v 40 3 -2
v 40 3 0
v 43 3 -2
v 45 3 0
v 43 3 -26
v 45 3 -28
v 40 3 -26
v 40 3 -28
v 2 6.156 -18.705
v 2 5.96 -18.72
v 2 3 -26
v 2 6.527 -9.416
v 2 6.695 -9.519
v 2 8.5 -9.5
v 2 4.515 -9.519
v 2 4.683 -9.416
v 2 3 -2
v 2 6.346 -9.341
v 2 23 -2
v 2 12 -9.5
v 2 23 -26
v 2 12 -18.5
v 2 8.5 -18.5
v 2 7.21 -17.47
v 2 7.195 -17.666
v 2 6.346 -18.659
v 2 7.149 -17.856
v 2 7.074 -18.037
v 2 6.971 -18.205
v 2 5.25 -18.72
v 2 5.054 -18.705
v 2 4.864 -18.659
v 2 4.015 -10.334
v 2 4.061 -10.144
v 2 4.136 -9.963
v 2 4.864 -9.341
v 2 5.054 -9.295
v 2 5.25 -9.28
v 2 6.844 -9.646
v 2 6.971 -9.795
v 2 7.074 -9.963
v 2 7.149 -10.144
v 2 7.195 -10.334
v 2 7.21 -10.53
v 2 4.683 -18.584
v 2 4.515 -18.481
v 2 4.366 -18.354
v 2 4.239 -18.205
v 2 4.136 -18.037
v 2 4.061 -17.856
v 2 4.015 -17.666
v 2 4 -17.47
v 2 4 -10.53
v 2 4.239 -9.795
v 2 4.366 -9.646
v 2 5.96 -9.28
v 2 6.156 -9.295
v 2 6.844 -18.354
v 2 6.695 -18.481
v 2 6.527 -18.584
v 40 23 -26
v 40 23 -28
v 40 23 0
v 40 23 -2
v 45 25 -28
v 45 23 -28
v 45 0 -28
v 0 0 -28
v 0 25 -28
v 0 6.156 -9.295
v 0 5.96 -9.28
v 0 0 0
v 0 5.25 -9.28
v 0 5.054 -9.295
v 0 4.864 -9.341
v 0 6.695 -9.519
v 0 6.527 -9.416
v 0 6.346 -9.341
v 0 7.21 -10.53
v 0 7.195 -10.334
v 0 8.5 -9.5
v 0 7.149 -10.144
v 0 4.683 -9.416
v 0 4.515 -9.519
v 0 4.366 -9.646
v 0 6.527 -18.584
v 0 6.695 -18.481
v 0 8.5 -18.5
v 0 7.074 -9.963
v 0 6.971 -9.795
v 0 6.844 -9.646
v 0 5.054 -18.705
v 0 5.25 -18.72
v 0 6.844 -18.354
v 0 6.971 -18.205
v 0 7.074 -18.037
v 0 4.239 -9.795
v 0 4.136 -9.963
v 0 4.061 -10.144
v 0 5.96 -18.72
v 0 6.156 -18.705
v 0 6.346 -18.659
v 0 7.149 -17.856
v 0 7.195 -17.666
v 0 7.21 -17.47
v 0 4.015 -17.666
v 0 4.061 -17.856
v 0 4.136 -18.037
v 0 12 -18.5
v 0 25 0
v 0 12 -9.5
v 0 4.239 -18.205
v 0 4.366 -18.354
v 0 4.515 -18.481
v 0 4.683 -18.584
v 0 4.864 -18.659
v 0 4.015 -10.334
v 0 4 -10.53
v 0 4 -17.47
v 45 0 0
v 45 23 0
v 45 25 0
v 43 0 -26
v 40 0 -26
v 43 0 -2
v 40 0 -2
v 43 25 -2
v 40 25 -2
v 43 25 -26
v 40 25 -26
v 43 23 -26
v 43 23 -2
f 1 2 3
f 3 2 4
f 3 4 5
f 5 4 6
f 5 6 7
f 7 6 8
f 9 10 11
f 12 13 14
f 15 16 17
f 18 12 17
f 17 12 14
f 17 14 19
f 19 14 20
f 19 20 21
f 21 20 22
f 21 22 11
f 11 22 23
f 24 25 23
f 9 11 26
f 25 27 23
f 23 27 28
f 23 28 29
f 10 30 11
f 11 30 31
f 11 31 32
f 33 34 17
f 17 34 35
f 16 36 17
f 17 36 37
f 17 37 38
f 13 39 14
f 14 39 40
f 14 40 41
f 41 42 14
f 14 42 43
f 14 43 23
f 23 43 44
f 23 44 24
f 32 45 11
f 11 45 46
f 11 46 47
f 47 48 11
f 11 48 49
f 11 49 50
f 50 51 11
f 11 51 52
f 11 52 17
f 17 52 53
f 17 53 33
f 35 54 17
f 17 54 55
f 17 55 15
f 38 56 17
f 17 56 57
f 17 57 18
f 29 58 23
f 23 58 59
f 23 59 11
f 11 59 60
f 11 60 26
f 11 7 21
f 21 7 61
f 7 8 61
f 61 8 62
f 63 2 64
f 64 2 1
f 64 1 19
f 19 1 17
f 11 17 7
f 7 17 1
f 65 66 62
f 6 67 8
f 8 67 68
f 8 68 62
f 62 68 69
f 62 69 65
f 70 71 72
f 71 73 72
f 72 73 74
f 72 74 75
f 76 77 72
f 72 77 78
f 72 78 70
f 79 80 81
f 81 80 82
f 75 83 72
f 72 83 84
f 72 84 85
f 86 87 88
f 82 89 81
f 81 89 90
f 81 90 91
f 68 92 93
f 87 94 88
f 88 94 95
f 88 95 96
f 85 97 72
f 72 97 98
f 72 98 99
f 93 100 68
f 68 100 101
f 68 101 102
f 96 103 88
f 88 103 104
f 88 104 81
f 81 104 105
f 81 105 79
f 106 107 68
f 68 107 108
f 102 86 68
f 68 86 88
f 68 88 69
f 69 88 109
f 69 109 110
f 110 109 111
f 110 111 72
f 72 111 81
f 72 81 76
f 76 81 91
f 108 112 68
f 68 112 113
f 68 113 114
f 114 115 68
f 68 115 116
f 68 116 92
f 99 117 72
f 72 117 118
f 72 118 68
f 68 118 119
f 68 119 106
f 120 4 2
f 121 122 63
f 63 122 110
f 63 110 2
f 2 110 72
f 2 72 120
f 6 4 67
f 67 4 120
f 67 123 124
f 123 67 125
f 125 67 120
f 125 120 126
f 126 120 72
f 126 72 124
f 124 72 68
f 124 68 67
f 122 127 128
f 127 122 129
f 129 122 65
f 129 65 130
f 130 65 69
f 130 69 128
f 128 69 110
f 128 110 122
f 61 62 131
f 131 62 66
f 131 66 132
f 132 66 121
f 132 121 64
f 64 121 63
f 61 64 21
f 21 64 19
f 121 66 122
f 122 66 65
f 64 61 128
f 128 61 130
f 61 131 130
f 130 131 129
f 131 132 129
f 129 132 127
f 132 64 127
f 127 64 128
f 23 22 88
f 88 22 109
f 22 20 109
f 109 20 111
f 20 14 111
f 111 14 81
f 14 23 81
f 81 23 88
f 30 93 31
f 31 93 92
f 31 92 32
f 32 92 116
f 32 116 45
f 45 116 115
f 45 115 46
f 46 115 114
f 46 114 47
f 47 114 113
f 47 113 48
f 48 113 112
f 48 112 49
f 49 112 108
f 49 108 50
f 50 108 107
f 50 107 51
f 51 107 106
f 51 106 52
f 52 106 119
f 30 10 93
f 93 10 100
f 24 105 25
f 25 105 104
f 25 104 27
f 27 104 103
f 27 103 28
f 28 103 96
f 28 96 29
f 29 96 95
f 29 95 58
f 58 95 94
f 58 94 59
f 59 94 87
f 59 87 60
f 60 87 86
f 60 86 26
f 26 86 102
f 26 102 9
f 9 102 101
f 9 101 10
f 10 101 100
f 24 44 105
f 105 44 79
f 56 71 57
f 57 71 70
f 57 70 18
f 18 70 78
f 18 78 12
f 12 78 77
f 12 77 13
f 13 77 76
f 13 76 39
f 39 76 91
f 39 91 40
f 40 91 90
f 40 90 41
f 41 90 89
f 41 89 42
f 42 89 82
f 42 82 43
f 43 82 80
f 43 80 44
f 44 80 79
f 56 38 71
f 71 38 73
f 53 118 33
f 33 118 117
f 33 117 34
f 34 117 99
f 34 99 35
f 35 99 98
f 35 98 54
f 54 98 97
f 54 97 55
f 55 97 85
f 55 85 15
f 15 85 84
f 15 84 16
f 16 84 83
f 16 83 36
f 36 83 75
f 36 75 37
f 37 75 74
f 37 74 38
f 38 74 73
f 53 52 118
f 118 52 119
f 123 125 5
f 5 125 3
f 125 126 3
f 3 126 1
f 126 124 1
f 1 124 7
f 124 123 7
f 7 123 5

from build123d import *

# Parameters (mm, degrees)
SKETCH1_W           = 45
SKETCH1_H           = 28
BOSS_EXTRUDE1_DEPTH = 3
BOSS_EXTRUDE2_DEPTH = 22
SKETCH4_W           = 45
SKETCH4_H           = 28
SKETCH4_W_2         = 3
SKETCH4_H_2         = 24
BOSS_EXTRUDE4_DEPTH = 2
SKETCH5_W           = 9
SKETCH5_H           = 3.5
CUT_EXTRUDE1_DEPTH  = 2
SKETCH6_W           = 3
SKETCH6_H           = 24
CUT_EXTRUDE2_DEPTH  = 3


with BuildPart() as part:
    # Sketch1 → Boss-Extrude1 (new body)
    with BuildSketch(Plane(origin=(0, 0, 0), x_dir=(1, 0, 0), z_dir=(0, 1, 0))):
        with Locations((22.5, 14)):
            Rectangle(SKETCH1_W, SKETCH1_H)
    extrude(amount=BOSS_EXTRUDE1_DEPTH)

    # Sketch2 → Boss-Extrude2 (add)
    with BuildSketch(Plane(origin=(0, 3, 0), x_dir=(1, 0, 0), z_dir=(0, 1, 0))):
        Polygon((40, 26), (40, 28), (0, 28), (0, 0), (40, 0), (40, 2), (2, 2), (2, 26), align=None)
    extrude(amount=BOSS_EXTRUDE2_DEPTH)

    # Sketch4 → Boss-Extrude4 (add)
    with BuildSketch(Plane(origin=(0, 25, 0), x_dir=(1, 0, 0), z_dir=(0, 1, 0))):
        with Locations((22.5, 14)):
            Rectangle(SKETCH4_W, SKETCH4_H)
        with Locations((41.5, 14)):
            Rectangle(SKETCH4_W_2, SKETCH4_H_2, mode=Mode.SUBTRACT)
    extrude(amount=-BOSS_EXTRUDE4_DEPTH)

    # Sketch5 → Cut-Extrude1 (cut)
    with BuildSketch(Plane.ZY):
        with BuildLine():
            Line((-18.72, 5.25), (-18.72, 5.96))
            ThreePointArc((-18.72, 5.96), (-18.353883476, 6.843883476), (-17.47, 7.21))
            Line((-17.47, 7.21), (-10.53, 7.21))
            ThreePointArc((-10.53, 7.21), (-9.646116524, 6.843883476), (-9.28, 5.96))
            Line((-9.28, 5.96), (-9.28, 5.25))
            ThreePointArc((-9.28, 5.25), (-9.646116524, 4.366116524), (-10.53, 4))
            Line((-10.53, 4), (-17.47, 4))
            ThreePointArc((-17.47, 4), (-18.353883476, 4.366116524), (-18.72, 5.25))
        make_face()
        with Locations((-14, 10.25)):
            Rectangle(SKETCH5_W, SKETCH5_H)
    extrude(amount=-CUT_EXTRUDE1_DEPTH, mode=Mode.SUBTRACT)

    # Sketch6 → Cut-Extrude2 (cut)
    with BuildSketch(Plane(origin=(0, 3, 0), x_dir=(1, 0, 0), z_dir=(0, 1, 0))):
        with Locations((41.5, 14)):
            Rectangle(SKETCH6_W, SKETCH6_H)
    extrude(amount=-CUT_EXTRUDE2_DEPTH, mode=Mode.SUBTRACT)


solid = part.part
